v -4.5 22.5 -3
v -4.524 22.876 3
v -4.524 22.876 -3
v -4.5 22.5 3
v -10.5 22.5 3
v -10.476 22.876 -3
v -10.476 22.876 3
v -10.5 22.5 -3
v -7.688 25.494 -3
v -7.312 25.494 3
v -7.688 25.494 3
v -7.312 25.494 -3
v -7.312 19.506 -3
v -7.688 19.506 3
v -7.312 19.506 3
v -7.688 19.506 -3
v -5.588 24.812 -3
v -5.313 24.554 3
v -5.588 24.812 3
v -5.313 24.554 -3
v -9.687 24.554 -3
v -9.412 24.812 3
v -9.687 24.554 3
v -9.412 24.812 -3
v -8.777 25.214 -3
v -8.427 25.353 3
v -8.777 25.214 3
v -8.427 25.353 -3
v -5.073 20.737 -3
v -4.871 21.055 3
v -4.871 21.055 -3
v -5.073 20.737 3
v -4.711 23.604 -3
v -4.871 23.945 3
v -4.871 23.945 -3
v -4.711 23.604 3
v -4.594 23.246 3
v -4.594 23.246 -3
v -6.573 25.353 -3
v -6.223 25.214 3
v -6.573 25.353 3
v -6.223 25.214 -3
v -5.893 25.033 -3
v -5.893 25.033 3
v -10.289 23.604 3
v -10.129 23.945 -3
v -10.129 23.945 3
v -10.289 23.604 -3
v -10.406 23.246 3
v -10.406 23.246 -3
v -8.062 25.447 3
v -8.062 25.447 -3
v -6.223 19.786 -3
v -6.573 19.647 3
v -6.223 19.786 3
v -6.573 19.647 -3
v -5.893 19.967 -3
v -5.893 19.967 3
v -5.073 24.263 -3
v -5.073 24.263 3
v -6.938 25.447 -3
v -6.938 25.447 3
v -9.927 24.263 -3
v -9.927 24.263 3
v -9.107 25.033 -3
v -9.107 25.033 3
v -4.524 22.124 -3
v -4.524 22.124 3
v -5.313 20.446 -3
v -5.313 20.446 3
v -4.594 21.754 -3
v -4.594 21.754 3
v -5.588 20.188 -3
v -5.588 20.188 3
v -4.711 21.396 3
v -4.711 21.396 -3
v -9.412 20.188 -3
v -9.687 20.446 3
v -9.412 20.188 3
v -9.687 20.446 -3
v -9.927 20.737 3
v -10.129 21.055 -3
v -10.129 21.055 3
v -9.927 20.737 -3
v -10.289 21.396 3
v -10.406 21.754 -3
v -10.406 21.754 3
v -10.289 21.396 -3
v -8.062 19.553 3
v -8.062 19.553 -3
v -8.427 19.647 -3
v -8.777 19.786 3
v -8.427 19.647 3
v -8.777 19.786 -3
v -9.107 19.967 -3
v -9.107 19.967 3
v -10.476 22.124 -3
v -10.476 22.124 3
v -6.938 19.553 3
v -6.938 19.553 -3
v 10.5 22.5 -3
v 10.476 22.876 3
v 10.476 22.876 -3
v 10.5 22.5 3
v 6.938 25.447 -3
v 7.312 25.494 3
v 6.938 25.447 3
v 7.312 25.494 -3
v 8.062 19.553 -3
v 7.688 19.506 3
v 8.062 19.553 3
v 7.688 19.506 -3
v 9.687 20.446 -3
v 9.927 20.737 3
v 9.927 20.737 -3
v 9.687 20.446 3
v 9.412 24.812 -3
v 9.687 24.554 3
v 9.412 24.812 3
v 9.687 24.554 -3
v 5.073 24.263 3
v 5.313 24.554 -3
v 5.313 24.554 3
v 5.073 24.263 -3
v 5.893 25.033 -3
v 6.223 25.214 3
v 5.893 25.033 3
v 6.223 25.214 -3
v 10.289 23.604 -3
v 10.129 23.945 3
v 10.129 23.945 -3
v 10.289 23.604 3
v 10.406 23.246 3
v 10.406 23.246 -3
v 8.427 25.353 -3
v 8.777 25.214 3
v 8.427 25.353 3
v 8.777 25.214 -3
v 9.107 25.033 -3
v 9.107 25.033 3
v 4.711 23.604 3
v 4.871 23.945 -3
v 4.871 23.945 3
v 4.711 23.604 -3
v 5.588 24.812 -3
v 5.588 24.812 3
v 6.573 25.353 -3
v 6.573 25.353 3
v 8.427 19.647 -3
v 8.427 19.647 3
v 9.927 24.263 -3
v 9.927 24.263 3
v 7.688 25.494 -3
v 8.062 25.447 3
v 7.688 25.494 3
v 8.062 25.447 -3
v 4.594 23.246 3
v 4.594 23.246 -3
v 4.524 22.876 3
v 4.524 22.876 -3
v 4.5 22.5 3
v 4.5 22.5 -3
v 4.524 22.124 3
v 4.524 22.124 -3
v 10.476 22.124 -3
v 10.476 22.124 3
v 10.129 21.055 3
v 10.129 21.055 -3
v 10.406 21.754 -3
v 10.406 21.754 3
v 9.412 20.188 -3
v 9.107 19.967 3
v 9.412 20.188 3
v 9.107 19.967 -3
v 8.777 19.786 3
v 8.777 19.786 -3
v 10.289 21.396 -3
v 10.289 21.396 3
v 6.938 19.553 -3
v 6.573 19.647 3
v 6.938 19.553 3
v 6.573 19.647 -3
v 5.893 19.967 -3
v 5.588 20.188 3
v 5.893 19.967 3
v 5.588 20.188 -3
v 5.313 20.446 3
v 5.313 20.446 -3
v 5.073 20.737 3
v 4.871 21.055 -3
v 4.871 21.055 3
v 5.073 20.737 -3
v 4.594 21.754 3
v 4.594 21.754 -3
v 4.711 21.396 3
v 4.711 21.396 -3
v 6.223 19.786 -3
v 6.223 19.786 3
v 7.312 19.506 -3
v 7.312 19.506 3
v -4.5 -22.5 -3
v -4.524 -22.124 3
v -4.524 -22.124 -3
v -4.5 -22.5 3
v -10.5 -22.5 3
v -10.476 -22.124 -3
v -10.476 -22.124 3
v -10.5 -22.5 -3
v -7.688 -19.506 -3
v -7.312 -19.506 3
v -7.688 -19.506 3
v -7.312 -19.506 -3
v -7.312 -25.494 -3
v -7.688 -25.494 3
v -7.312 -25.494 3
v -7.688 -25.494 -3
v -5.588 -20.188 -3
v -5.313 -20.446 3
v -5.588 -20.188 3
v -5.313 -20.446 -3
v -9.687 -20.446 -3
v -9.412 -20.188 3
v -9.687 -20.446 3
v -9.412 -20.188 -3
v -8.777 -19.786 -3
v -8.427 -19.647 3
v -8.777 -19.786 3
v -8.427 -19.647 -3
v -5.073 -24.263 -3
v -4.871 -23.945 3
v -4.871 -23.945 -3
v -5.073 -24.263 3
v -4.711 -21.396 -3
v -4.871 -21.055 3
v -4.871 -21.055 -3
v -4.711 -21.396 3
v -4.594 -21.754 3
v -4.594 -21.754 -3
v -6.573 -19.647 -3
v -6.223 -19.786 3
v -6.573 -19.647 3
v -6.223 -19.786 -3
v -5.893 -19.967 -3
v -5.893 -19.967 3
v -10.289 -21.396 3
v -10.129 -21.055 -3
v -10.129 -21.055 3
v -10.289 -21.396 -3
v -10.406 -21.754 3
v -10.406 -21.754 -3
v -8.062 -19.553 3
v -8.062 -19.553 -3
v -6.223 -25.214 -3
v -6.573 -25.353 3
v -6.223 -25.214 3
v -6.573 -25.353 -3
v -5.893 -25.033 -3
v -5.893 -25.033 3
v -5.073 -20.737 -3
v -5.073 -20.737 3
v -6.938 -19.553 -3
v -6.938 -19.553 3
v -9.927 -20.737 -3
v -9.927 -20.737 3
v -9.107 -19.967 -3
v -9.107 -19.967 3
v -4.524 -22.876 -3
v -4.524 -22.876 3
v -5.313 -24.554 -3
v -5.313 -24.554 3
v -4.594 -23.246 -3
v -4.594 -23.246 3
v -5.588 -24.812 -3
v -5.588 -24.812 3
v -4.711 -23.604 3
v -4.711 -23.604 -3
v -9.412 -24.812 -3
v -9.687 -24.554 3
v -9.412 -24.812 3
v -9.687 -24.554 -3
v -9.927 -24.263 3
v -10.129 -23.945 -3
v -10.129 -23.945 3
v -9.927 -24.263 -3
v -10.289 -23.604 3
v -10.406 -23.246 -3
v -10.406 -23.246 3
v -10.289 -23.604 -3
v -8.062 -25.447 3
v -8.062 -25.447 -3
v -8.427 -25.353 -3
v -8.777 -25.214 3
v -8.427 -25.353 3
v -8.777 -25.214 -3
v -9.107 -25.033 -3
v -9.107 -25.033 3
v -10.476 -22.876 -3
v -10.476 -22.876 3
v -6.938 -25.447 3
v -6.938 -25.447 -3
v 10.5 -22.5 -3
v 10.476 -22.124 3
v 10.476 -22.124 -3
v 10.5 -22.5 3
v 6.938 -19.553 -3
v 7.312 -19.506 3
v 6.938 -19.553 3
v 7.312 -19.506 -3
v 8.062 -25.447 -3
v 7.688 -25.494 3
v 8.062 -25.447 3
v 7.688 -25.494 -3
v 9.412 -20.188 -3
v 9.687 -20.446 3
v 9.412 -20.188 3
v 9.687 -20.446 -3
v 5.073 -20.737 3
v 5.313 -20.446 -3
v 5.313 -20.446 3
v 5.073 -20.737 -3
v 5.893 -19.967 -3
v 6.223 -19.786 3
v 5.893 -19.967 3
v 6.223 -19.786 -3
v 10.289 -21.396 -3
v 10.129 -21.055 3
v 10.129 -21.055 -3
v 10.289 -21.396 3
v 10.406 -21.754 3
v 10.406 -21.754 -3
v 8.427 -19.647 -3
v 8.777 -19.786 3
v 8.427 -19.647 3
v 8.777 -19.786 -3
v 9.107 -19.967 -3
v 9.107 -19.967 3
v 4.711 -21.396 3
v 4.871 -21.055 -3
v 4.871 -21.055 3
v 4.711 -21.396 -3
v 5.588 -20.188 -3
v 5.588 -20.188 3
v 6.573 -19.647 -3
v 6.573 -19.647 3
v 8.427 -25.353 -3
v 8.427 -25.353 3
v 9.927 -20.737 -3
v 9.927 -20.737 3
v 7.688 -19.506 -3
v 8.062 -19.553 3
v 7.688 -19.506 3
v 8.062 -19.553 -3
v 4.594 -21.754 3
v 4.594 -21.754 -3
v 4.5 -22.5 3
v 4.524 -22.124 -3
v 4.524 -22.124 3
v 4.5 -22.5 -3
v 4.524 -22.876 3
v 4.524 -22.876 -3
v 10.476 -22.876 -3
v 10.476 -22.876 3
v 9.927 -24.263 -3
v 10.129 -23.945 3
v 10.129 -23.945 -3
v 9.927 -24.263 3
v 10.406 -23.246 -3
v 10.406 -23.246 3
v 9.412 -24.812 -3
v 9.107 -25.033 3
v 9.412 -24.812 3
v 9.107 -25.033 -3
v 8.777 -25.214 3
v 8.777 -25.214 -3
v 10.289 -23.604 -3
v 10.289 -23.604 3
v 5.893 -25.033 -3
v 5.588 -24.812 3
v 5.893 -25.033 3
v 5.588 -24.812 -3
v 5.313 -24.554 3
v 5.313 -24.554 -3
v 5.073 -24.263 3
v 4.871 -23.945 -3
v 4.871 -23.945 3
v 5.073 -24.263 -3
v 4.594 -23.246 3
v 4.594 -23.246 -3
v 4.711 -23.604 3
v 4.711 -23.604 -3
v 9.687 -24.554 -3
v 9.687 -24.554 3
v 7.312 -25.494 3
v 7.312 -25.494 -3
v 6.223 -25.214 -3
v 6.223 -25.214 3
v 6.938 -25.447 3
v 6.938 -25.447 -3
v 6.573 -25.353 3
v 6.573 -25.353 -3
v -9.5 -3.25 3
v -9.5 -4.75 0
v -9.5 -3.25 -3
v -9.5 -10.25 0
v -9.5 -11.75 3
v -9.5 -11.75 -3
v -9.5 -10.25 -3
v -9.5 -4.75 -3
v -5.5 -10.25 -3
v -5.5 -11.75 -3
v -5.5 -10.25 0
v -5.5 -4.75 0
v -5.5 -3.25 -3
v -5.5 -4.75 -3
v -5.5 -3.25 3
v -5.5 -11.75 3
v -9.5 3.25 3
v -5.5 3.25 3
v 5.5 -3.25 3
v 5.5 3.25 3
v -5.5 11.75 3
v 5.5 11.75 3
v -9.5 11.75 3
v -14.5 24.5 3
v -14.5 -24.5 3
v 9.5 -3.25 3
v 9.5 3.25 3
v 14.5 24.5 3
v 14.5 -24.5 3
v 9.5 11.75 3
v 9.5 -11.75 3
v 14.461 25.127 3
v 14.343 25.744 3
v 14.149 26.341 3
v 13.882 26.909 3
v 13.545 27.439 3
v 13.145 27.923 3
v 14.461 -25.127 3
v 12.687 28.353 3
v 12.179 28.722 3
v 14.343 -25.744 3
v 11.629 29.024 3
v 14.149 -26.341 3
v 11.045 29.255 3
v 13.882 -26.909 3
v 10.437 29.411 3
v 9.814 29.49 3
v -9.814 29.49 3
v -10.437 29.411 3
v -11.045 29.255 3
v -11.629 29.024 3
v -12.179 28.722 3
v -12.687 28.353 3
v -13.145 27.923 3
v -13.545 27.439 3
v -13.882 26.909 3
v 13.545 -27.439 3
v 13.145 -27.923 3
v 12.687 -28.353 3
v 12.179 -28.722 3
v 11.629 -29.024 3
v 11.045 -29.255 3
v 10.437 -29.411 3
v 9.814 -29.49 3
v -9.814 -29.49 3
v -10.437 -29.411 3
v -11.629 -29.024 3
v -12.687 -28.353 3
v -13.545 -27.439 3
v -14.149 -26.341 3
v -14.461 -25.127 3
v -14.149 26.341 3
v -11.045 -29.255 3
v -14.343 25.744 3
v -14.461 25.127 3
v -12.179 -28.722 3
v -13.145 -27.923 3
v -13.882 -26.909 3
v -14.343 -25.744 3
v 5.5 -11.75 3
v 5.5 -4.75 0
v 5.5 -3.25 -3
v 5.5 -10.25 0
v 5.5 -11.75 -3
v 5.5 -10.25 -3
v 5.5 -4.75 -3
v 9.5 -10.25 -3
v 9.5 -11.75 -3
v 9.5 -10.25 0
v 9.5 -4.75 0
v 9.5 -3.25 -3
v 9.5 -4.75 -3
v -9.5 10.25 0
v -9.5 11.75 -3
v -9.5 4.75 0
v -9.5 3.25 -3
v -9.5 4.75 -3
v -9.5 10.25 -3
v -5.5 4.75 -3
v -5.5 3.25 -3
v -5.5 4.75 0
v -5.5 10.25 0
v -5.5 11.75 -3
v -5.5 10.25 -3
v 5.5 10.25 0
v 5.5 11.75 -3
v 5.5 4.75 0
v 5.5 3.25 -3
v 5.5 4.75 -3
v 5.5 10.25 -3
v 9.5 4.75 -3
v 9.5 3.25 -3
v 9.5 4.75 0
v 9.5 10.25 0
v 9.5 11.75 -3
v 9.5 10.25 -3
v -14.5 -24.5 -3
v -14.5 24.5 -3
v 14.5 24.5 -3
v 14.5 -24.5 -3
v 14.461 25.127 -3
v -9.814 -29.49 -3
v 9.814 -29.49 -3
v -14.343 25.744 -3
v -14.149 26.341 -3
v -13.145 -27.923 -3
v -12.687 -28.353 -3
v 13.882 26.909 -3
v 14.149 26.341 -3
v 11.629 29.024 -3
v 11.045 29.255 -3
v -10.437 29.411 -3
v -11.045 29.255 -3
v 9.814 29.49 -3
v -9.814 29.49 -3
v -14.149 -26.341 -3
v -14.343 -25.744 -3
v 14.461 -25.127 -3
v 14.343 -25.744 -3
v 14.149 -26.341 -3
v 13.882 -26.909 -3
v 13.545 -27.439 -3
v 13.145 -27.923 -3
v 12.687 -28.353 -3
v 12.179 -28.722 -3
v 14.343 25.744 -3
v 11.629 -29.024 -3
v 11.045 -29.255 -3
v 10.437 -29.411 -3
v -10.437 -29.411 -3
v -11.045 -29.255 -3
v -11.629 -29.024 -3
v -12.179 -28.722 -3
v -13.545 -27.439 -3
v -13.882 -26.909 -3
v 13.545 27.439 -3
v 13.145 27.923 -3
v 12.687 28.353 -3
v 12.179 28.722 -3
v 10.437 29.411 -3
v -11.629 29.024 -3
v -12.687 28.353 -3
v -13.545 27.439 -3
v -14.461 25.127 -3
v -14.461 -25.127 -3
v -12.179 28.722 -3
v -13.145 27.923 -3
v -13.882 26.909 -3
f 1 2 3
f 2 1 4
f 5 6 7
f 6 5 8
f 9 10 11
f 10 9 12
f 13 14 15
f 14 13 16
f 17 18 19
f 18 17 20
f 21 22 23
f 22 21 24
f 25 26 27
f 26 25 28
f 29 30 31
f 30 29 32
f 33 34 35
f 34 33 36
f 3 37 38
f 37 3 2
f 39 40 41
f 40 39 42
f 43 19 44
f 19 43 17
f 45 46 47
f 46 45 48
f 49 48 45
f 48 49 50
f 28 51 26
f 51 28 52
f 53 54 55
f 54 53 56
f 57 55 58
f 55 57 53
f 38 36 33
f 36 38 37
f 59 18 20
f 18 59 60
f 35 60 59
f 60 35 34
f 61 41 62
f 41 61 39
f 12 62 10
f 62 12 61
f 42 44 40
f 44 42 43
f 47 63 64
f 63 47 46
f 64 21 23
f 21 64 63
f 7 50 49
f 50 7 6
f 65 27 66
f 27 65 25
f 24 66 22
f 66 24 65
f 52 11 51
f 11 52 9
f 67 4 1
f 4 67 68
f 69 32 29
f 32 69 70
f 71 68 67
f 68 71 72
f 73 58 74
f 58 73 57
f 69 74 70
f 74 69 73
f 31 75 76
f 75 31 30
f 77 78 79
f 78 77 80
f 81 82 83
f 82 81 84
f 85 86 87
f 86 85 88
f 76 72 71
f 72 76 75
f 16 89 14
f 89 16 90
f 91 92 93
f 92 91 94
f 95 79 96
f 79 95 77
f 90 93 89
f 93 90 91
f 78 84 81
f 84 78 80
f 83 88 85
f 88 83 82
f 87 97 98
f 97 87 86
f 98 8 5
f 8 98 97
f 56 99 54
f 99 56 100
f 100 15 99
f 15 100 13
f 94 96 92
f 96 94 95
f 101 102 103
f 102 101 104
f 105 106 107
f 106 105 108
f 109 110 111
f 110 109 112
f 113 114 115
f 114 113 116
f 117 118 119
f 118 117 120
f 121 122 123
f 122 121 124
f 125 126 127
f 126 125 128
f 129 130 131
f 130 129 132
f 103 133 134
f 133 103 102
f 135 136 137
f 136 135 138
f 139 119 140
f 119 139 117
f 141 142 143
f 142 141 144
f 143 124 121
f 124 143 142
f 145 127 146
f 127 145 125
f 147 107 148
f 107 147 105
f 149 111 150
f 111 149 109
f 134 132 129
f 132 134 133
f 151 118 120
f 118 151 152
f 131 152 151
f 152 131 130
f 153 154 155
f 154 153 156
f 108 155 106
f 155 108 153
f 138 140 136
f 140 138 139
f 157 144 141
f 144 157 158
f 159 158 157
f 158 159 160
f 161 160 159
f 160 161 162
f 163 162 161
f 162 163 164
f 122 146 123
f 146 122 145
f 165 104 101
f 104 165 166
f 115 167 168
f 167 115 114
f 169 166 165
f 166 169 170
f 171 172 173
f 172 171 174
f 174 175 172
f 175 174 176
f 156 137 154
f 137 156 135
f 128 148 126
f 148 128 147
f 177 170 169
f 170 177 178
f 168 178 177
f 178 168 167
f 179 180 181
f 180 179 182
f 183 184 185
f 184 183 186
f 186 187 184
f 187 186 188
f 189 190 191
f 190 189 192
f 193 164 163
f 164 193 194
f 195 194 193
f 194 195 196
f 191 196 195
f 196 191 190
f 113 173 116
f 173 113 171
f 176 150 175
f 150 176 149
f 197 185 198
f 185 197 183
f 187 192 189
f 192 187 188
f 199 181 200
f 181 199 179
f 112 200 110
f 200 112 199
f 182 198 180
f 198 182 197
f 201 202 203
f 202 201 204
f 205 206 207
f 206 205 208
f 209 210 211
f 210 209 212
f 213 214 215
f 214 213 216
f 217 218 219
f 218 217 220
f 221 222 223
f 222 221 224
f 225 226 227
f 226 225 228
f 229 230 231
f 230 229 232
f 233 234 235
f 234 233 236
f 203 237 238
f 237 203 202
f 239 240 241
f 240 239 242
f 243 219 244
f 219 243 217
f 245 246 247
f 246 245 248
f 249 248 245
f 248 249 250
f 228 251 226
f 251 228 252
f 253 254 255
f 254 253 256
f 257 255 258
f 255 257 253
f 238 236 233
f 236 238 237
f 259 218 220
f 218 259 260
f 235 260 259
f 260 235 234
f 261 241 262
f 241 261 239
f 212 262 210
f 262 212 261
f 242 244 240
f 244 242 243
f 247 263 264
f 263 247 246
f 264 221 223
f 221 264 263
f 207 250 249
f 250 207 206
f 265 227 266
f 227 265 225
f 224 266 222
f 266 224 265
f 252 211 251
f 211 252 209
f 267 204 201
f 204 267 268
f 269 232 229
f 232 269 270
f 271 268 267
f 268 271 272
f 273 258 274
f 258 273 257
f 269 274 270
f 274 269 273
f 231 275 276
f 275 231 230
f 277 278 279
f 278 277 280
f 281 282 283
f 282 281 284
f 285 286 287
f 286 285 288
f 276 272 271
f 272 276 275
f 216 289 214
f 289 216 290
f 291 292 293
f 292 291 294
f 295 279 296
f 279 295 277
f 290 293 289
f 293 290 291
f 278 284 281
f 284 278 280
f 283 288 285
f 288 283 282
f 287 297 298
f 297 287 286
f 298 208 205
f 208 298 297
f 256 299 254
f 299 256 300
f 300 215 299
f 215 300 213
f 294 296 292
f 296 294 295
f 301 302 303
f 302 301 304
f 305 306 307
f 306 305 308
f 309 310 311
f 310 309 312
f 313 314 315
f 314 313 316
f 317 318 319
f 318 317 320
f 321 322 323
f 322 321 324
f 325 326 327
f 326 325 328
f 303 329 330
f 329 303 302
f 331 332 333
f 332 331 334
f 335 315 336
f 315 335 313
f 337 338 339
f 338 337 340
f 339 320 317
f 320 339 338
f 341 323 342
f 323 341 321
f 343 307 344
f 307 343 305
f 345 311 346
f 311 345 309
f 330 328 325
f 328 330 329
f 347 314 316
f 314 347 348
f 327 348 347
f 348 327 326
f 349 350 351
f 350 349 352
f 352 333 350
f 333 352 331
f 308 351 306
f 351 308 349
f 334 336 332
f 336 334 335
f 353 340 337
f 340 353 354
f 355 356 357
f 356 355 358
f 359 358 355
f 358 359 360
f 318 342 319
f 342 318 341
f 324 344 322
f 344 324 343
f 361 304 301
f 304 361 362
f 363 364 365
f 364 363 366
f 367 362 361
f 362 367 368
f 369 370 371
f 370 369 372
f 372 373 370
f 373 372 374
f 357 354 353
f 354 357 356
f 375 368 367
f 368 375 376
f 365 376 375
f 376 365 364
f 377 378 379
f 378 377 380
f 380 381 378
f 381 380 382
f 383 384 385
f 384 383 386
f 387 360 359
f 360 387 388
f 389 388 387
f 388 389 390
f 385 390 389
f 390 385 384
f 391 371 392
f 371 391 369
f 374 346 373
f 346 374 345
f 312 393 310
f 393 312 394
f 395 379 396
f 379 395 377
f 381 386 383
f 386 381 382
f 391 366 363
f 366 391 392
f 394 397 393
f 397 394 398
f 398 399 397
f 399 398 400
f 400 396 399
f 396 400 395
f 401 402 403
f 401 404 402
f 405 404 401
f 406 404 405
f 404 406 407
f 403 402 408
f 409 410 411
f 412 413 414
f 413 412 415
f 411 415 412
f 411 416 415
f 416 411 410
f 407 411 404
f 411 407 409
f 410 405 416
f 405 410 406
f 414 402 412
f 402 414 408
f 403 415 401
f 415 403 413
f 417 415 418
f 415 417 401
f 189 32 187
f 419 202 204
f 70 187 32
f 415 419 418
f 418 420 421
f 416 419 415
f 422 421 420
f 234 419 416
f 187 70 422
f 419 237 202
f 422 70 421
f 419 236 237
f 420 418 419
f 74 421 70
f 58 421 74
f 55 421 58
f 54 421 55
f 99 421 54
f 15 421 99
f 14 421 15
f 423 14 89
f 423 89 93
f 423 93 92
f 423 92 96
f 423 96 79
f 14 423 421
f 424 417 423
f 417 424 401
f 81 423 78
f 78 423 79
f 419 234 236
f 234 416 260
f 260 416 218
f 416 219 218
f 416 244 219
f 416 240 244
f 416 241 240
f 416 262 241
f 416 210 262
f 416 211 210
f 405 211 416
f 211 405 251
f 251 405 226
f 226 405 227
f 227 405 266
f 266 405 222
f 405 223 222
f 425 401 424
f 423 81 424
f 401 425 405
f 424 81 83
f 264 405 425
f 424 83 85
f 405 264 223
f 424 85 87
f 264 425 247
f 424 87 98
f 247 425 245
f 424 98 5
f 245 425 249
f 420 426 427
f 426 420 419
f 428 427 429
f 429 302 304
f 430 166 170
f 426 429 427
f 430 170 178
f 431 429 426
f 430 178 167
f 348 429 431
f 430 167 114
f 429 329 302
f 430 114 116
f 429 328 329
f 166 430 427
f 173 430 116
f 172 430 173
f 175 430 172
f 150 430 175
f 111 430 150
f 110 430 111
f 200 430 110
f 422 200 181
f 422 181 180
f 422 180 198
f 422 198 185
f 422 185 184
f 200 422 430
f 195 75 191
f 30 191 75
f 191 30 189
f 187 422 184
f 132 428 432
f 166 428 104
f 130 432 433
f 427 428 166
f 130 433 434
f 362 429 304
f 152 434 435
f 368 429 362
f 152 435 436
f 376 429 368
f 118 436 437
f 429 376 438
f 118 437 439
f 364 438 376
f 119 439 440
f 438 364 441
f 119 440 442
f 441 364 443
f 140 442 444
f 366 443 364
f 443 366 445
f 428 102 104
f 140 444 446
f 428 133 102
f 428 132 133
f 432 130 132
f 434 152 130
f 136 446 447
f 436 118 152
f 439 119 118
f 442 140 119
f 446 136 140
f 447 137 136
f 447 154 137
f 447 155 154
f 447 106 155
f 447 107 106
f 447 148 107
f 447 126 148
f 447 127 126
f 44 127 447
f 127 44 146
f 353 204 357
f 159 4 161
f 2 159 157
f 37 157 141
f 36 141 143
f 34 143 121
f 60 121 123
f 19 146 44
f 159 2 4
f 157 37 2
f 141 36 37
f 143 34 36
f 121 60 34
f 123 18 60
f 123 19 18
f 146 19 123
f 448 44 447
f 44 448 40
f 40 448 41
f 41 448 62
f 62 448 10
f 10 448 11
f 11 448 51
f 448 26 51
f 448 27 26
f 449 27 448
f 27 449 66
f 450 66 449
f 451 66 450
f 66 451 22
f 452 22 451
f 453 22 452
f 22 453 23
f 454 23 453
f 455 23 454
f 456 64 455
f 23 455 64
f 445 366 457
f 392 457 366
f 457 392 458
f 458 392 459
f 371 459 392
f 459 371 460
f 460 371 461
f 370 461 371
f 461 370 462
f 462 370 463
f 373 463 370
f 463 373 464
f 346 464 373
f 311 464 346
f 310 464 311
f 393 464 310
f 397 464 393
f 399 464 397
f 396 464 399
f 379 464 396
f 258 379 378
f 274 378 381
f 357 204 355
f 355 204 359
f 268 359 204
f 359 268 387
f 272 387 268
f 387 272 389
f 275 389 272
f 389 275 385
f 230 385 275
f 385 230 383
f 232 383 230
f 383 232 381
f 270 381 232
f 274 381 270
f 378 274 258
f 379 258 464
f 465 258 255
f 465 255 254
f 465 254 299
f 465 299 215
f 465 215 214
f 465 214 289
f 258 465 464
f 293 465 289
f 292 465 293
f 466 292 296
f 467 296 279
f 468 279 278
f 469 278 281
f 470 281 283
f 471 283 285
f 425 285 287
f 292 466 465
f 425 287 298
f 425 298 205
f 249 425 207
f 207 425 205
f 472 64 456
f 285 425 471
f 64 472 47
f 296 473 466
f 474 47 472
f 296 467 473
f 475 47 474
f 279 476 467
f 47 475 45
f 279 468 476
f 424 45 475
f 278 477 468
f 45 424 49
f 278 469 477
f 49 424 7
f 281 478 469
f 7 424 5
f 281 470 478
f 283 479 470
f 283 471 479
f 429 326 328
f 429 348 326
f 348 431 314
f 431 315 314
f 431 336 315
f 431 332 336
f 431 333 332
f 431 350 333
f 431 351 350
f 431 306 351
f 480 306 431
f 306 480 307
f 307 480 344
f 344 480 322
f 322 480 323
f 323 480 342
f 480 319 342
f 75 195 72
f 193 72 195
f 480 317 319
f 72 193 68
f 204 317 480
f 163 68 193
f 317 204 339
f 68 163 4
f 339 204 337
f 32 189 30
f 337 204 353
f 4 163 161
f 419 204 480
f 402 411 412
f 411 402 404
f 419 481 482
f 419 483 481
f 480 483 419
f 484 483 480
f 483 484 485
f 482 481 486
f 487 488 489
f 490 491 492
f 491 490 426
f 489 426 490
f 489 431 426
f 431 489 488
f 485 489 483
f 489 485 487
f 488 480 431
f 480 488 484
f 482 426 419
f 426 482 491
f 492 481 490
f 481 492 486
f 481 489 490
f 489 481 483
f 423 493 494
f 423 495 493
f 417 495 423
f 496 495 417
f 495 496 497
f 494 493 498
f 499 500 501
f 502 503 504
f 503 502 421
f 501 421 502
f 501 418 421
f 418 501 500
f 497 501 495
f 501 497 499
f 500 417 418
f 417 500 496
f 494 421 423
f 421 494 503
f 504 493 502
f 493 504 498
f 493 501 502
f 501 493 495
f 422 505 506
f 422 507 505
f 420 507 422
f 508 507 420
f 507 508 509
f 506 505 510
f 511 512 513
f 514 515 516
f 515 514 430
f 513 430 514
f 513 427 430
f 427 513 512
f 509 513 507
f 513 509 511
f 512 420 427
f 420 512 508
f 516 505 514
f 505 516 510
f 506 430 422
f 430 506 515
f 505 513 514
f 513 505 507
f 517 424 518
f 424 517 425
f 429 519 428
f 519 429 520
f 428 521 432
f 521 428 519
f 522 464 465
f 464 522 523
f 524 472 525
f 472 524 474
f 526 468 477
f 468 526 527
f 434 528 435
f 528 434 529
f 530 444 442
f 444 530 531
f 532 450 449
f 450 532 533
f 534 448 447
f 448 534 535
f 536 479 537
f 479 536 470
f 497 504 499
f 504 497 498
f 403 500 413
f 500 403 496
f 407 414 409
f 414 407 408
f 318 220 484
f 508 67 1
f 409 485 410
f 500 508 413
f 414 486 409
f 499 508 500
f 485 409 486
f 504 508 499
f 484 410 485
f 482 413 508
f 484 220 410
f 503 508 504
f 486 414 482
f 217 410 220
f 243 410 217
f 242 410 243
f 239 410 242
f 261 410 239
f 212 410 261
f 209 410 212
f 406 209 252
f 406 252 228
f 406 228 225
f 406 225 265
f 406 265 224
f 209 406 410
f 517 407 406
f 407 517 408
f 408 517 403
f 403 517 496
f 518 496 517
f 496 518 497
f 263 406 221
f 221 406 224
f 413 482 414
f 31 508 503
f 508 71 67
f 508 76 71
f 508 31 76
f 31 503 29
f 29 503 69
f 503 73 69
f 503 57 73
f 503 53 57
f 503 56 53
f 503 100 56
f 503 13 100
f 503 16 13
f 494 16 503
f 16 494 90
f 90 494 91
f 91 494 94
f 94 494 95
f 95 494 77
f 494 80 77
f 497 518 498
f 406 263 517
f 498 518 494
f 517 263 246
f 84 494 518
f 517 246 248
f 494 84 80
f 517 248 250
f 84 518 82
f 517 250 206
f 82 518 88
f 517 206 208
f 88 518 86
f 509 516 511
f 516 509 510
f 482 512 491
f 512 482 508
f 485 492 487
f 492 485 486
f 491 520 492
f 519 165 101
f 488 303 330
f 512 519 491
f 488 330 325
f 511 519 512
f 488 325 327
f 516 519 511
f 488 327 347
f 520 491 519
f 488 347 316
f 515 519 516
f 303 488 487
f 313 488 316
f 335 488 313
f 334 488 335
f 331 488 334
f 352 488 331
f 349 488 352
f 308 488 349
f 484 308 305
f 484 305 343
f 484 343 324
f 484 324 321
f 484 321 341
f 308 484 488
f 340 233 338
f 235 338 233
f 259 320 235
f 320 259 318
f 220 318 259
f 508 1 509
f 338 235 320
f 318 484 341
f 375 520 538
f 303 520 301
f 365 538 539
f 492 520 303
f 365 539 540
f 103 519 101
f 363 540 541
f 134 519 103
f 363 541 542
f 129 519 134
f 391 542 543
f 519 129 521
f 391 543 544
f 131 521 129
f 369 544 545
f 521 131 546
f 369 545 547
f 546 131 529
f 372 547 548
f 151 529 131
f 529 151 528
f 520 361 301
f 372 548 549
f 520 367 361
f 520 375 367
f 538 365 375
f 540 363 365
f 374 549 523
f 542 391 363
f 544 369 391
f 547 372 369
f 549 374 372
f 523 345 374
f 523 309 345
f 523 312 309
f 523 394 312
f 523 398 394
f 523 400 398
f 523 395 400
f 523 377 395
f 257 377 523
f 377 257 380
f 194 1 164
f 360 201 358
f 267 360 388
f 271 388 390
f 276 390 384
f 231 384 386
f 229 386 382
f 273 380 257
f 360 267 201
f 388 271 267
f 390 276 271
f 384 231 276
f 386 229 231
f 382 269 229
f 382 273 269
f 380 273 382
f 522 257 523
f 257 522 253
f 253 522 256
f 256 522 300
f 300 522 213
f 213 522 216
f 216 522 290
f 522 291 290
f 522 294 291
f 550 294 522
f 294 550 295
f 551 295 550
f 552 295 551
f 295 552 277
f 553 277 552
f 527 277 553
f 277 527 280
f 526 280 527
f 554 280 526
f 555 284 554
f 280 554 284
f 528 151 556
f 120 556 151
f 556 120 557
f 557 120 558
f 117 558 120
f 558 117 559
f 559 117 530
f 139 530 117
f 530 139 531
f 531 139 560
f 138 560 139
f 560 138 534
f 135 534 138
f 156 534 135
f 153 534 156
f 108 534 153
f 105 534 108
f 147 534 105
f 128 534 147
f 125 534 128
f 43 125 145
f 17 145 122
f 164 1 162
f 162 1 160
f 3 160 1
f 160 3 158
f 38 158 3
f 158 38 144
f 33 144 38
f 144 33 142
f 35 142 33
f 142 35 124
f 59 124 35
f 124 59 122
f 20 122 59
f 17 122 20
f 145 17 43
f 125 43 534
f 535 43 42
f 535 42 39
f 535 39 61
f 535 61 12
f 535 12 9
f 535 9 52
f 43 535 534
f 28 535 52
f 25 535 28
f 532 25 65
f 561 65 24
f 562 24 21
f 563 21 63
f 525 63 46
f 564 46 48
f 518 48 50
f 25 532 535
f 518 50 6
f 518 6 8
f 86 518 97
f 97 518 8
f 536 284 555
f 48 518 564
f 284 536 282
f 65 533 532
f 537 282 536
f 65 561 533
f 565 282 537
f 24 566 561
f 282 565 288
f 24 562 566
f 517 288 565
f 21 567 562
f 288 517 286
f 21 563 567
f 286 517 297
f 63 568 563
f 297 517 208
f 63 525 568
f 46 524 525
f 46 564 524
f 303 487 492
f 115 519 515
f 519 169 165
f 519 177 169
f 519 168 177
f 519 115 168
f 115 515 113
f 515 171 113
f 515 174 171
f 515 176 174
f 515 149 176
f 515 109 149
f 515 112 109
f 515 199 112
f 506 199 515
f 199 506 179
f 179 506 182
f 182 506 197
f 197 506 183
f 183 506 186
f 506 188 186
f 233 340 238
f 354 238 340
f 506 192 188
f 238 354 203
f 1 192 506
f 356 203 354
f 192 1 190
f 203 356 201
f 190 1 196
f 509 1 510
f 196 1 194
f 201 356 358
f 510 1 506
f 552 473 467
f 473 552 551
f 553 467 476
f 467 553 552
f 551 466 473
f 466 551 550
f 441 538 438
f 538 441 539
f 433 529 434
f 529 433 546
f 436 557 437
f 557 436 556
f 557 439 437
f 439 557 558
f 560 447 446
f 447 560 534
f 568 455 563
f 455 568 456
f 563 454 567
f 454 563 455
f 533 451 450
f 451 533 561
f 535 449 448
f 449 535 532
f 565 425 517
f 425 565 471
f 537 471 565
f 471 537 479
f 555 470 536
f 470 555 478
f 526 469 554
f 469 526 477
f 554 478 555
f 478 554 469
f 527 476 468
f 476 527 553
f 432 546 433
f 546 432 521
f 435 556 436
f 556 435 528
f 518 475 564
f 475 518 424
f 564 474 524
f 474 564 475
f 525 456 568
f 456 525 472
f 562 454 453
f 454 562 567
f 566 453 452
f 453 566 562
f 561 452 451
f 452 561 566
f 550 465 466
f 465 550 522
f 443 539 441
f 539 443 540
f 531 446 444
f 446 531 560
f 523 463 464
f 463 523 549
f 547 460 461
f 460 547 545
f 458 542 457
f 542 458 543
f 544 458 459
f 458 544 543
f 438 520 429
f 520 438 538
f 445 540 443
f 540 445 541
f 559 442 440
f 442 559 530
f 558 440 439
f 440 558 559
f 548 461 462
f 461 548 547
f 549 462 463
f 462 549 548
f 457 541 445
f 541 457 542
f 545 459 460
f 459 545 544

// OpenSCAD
$fn = 50;


difference() {
	union() {
		translate(v = [0, 0, -3.0000000000]) {
			rotate(a = [0, 0, 0]) {
				hull() {
					translate(v = [-9.5000000000, 24.5000000000, 0]) {
						rotate(a = [0, 0, 0]) {
							translate(v = [0, 0, 0]) {
								rotate(a = [0, 0, 0]) {
									cylinder(h = 6, r = 5);
								}
							}
						}
					}
					translate(v = [9.5000000000, 24.5000000000, 0]) {
						rotate(a = [0, 0, 0]) {
							translate(v = [0, 0, 0]) {
								rotate(a = [0, 0, 0]) {
									cylinder(h = 6, r = 5);
								}
							}
						}
					}
					translate(v = [-9.5000000000, -24.5000000000, 0]) {
						rotate(a = [0, 0, 0]) {
							translate(v = [0, 0, 0]) {
								rotate(a = [0, 0, 0]) {
									cylinder(h = 6, r = 5);
								}
							}
						}
					}
					translate(v = [9.5000000000, -24.5000000000, 0]) {
						rotate(a = [0, 0, 0]) {
							translate(v = [0, 0, 0]) {
								rotate(a = [0, 0, 0]) {
									cylinder(h = 6, r = 5);
								}
							}
						}
					}
				}
			}
		}
	}
	union() {
		translate(v = [-7.5000000000, 22.5000000000, -125.0000000000]) {
			rotate(a = [0, 0, 0]) {
				cylinder(h = 250, r = 3.0000000000);
			}
		}
		translate(v = [7.5000000000, 22.5000000000, -125.0000000000]) {
			rotate(a = [0, 0, 0]) {
				cylinder(h = 250, r = 3.0000000000);
			}
		}
		translate(v = [-7.5000000000, -22.5000000000, -125.0000000000]) {
			rotate(a = [0, 0, 0]) {
				cylinder(h = 250, r = 3.0000000000);
			}
		}
		translate(v = [7.5000000000, -22.5000000000, -125.0000000000]) {
			rotate(a = [0, 0, 0]) {
				cylinder(h = 250, r = 3.0000000000);
			}
		}
		translate(v = [-9.5000000000, -11.7500000000, -50]) {
			rotate(a = [0, 0, 0]) {
				cube(size = [4, 1.5000000000, 100]);
			}
		}
		translate(v = [-9.5000000000, -4.7500000000, -50]) {
			rotate(a = [0, 0, 0]) {
				cube(size = [4, 1.5000000000, 100]);
			}
		}
		translate(v = [-9.5000000000, -11.7500000000, 0]) {
			rotate(a = [0, 0, 0]) {
				cube(size = [4, 8.5000000000, 3]);
			}
		}
		translate(v = [5.5000000000, -11.7500000000, -50]) {
			rotate(a = [0, 0, 0]) {
				cube(size = [4, 1.5000000000, 100]);
			}
		}
		translate(v = [5.5000000000, -4.7500000000, -50]) {
			rotate(a = [0, 0, 0]) {
				cube(size = [4, 1.5000000000, 100]);
			}
		}
		translate(v = [5.5000000000, -11.7500000000, 0]) {
			rotate(a = [0, 0, 0]) {
				cube(size = [4, 8.5000000000, 3]);
			}
		}
		translate(v = [-9.5000000000, 3.2500000000, -50]) {
			rotate(a = [0, 0, 0]) {
				cube(size = [4, 1.5000000000, 100]);
			}
		}
		translate(v = [-9.5000000000, 10.2500000000, -50]) {
			rotate(a = [0, 0, 0]) {
				cube(size = [4, 1.5000000000, 100]);
			}
		}
		translate(v = [-9.5000000000, 3.2500000000, 0]) {
			rotate(a = [0, 0, 0]) {
				cube(size = [4, 8.5000000000, 3]);
			}
		}
		translate(v = [5.5000000000, 3.2500000000, -50]) {
			rotate(a = [0, 0, 0]) {
				cube(size = [4, 1.5000000000, 100]);
			}
		}
		translate(v = [5.5000000000, 10.2500000000, -50]) {
			rotate(a = [0, 0, 0]) {
				cube(size = [4, 1.5000000000, 100]);
			}
		}
		translate(v = [5.5000000000, 3.2500000000, 0]) {
			rotate(a = [0, 0, 0]) {
				cube(size = [4, 8.5000000000, 3]);
			}
		}
	}
}
